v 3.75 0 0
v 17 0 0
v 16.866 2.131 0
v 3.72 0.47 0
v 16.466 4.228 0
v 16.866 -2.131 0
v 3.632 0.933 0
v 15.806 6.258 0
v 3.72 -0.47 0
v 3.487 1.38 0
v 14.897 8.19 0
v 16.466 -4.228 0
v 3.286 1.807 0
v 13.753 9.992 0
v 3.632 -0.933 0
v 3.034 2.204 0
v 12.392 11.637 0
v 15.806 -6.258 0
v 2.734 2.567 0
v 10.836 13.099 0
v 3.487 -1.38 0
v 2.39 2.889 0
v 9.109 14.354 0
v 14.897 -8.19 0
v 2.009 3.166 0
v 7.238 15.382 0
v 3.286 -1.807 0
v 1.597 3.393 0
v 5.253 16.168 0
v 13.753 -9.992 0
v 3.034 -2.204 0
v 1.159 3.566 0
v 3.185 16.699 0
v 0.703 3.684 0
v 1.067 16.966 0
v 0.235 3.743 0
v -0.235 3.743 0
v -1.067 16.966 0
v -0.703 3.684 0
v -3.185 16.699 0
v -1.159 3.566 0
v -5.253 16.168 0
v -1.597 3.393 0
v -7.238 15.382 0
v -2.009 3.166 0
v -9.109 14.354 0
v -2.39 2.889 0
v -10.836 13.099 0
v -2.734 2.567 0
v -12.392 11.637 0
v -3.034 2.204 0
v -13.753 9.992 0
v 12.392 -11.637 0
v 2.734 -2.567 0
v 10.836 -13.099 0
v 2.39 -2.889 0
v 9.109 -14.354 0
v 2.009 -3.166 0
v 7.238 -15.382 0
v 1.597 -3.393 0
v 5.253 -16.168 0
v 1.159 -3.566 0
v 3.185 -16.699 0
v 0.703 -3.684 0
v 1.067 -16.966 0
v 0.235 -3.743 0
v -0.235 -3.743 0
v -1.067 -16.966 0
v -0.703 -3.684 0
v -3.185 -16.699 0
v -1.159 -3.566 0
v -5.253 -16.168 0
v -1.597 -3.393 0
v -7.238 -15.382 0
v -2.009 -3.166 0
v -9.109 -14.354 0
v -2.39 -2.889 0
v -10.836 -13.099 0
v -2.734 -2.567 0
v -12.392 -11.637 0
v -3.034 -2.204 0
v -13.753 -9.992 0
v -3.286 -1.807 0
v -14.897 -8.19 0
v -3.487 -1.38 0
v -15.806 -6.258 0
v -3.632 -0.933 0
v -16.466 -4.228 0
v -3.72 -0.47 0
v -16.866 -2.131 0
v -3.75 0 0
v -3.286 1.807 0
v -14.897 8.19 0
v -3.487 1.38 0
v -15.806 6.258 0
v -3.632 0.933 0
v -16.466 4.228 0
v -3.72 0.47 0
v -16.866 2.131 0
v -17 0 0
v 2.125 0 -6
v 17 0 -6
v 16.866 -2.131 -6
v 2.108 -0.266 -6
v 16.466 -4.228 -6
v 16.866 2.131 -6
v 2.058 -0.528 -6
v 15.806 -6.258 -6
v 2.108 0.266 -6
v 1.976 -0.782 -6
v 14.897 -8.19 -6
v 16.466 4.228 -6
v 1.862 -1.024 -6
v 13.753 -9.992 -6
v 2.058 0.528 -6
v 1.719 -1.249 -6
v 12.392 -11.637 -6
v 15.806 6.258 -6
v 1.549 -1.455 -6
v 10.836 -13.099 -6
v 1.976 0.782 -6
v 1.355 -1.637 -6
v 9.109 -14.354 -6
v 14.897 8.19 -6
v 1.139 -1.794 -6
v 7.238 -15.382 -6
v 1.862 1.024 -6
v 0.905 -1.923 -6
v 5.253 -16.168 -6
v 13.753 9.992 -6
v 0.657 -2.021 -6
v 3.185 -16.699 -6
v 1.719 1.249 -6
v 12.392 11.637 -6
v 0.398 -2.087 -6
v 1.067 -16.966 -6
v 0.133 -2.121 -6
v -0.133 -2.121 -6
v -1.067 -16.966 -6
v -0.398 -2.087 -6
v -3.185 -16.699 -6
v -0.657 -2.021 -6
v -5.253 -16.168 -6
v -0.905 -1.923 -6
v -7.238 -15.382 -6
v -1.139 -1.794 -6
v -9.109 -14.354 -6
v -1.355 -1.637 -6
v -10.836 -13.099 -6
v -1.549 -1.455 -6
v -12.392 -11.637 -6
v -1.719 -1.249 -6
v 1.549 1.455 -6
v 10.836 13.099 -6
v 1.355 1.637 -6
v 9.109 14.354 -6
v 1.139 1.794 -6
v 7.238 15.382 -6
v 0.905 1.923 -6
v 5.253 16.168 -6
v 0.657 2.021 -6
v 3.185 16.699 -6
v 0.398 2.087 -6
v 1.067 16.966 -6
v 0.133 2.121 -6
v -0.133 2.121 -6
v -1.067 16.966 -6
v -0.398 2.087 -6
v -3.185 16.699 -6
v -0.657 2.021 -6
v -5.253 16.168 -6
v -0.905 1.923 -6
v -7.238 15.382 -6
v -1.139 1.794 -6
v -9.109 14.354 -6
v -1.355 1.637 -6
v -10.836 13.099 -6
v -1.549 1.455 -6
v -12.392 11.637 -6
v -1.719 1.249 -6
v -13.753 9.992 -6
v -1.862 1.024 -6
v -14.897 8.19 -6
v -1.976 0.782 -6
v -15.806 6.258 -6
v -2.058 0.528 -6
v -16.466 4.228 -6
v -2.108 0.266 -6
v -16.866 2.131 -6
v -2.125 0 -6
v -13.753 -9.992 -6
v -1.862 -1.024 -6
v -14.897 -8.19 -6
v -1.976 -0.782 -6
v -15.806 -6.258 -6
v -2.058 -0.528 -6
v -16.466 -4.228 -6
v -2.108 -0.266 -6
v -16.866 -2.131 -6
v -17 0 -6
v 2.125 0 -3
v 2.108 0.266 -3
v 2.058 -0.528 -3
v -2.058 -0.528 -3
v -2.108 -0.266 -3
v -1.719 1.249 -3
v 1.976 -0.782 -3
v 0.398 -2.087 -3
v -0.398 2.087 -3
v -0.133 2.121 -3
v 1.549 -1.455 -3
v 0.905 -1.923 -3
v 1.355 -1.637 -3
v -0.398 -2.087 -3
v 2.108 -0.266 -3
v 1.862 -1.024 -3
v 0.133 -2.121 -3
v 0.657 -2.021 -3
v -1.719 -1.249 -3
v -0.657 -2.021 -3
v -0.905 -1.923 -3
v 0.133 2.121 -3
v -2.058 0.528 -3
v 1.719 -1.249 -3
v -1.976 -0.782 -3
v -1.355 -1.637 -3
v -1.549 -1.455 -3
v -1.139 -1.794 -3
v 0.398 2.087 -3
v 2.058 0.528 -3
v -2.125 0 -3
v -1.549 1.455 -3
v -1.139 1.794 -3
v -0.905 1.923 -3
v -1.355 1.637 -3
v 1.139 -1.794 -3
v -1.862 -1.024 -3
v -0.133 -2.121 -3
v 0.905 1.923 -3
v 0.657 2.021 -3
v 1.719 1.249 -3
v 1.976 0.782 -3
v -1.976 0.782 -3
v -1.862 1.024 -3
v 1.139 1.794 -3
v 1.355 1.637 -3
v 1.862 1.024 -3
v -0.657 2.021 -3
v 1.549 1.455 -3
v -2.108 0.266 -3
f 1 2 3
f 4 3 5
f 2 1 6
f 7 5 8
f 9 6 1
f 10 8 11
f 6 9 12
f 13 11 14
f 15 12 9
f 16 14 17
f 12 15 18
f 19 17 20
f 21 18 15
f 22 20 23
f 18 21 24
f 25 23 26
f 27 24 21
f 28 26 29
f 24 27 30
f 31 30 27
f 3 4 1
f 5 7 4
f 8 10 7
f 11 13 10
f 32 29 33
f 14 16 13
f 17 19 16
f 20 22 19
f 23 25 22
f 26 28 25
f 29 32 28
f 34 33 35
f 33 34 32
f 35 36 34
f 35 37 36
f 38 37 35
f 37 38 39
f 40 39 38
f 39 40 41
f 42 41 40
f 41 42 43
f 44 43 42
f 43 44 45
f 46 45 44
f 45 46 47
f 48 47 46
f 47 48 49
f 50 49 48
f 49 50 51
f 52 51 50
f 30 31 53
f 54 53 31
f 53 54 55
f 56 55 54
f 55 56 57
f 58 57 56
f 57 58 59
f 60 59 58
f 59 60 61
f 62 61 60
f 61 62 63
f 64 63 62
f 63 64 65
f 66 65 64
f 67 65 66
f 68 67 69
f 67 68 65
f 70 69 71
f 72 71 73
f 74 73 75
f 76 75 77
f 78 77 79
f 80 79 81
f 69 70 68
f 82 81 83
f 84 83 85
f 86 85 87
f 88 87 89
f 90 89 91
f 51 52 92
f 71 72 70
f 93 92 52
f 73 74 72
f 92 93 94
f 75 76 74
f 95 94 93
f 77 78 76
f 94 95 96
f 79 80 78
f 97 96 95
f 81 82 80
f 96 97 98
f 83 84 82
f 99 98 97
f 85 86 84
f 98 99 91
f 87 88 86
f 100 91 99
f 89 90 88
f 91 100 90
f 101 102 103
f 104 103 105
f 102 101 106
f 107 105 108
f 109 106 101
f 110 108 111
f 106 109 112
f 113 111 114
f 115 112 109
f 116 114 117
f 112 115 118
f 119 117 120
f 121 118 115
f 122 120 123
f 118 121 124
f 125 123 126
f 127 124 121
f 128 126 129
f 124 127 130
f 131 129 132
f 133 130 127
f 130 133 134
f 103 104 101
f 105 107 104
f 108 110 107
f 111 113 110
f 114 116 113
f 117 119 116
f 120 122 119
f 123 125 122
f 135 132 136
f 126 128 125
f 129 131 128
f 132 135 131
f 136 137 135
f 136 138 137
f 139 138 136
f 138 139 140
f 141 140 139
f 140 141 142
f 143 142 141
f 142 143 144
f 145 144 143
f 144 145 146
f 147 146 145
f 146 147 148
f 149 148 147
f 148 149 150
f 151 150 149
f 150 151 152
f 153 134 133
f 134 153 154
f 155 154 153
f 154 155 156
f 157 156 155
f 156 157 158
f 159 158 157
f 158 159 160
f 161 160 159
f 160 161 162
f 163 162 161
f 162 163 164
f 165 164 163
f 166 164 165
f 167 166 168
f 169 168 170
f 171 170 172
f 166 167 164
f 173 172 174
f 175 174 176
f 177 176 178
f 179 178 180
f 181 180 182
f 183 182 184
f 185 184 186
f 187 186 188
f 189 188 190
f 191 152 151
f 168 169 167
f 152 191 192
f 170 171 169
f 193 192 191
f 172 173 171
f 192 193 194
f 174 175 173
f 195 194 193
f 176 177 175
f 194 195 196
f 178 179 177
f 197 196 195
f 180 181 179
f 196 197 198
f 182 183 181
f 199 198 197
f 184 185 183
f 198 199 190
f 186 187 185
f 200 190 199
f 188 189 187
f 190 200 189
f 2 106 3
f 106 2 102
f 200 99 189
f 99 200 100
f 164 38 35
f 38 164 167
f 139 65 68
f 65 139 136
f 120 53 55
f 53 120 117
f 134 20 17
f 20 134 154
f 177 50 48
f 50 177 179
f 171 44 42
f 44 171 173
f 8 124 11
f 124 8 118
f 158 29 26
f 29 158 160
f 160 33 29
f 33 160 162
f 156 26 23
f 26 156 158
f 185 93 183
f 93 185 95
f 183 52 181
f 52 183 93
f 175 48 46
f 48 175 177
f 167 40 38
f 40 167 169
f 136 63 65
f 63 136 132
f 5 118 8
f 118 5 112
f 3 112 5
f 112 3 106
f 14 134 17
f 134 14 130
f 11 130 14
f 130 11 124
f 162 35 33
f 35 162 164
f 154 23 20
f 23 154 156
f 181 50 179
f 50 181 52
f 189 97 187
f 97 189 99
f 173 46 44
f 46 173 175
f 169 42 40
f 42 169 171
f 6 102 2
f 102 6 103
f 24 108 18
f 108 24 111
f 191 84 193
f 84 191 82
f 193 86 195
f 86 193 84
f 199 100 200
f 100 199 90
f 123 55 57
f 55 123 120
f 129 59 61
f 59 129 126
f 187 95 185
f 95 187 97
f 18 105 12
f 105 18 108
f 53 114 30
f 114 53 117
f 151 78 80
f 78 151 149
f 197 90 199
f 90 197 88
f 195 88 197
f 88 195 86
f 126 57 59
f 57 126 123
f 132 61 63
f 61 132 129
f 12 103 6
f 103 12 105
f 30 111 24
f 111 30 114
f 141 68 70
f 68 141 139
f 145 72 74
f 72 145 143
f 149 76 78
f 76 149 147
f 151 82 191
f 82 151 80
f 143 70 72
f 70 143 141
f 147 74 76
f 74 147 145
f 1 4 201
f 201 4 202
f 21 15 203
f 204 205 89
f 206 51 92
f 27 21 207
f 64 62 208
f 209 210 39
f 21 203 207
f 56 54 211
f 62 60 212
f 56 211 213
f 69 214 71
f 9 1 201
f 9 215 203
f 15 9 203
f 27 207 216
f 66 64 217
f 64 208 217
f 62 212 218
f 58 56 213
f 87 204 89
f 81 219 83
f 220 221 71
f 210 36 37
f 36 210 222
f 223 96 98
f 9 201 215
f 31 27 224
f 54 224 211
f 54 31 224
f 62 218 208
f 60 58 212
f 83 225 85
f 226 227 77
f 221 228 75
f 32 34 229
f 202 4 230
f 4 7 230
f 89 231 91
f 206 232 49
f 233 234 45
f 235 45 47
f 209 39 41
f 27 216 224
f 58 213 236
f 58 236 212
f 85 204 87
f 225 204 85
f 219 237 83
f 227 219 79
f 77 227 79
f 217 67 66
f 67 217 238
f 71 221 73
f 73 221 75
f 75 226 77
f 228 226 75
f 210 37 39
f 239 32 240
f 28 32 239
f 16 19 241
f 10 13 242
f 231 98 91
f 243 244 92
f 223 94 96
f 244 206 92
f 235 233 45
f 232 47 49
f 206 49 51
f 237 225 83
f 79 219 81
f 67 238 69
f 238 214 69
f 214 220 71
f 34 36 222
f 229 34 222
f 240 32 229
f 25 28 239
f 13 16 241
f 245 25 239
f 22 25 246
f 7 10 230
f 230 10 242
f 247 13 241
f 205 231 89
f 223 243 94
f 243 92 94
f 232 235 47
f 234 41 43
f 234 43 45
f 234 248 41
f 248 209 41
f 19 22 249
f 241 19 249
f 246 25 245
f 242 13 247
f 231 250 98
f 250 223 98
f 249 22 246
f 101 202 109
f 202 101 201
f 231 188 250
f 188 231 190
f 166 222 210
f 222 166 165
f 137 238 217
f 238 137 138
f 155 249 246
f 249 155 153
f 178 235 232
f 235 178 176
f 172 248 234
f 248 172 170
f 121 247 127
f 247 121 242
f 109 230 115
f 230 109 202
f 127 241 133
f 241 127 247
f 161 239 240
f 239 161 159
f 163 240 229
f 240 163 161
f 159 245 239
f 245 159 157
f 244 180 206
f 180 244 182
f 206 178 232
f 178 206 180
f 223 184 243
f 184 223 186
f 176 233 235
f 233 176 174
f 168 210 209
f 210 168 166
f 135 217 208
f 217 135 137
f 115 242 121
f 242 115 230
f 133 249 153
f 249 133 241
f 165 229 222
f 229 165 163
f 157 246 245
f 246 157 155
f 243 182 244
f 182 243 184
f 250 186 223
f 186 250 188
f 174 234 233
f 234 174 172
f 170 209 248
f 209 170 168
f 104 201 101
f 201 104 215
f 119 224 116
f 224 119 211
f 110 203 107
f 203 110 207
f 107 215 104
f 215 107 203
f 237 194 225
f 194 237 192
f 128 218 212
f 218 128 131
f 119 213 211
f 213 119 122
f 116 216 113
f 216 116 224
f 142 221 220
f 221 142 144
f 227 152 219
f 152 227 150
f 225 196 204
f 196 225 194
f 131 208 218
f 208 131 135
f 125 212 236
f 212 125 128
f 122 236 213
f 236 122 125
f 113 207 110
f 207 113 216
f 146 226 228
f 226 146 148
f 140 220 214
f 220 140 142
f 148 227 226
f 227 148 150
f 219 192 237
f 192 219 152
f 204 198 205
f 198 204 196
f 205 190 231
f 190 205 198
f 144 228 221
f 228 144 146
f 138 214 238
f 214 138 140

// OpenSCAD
$fn = 50;


difference() {
	union() {
		translate(v = [0, 0, -6.0000000000]) {
			cylinder(h = 6, r = 7.0000000000);
		}
		translate(v = [0, 0, -6.0000000000]) {
			cylinder(h = 6, r = 17.0000000000);
		}
	}
	union() {
		translate(v = [0, 0, 0]) {
			rotate(a = [0, 0, 0]) {
				difference() {
					union() {
						#translate(v = [0, 0, -6.0000000000]) {
							cylinder(h = 6, r = 2.0000000000);
						}
						#translate(v = [0, 0, -3]) {
							cylinder(h = 3, r = 7.0000000000, r1 = 2.1250000000, r2 = 3.7500000000);
						}
						#translate(v = [0, 0, -6.0000000000]) {
							cylinder(h = 6, r = 2.1250000000);
						}
						#translate(v = [0, 0, -6.0000000000]) {
							cylinder(h = 6, r = 2.0000000000);
						}
					}
					union();
				}
			}
		}
	}
}
